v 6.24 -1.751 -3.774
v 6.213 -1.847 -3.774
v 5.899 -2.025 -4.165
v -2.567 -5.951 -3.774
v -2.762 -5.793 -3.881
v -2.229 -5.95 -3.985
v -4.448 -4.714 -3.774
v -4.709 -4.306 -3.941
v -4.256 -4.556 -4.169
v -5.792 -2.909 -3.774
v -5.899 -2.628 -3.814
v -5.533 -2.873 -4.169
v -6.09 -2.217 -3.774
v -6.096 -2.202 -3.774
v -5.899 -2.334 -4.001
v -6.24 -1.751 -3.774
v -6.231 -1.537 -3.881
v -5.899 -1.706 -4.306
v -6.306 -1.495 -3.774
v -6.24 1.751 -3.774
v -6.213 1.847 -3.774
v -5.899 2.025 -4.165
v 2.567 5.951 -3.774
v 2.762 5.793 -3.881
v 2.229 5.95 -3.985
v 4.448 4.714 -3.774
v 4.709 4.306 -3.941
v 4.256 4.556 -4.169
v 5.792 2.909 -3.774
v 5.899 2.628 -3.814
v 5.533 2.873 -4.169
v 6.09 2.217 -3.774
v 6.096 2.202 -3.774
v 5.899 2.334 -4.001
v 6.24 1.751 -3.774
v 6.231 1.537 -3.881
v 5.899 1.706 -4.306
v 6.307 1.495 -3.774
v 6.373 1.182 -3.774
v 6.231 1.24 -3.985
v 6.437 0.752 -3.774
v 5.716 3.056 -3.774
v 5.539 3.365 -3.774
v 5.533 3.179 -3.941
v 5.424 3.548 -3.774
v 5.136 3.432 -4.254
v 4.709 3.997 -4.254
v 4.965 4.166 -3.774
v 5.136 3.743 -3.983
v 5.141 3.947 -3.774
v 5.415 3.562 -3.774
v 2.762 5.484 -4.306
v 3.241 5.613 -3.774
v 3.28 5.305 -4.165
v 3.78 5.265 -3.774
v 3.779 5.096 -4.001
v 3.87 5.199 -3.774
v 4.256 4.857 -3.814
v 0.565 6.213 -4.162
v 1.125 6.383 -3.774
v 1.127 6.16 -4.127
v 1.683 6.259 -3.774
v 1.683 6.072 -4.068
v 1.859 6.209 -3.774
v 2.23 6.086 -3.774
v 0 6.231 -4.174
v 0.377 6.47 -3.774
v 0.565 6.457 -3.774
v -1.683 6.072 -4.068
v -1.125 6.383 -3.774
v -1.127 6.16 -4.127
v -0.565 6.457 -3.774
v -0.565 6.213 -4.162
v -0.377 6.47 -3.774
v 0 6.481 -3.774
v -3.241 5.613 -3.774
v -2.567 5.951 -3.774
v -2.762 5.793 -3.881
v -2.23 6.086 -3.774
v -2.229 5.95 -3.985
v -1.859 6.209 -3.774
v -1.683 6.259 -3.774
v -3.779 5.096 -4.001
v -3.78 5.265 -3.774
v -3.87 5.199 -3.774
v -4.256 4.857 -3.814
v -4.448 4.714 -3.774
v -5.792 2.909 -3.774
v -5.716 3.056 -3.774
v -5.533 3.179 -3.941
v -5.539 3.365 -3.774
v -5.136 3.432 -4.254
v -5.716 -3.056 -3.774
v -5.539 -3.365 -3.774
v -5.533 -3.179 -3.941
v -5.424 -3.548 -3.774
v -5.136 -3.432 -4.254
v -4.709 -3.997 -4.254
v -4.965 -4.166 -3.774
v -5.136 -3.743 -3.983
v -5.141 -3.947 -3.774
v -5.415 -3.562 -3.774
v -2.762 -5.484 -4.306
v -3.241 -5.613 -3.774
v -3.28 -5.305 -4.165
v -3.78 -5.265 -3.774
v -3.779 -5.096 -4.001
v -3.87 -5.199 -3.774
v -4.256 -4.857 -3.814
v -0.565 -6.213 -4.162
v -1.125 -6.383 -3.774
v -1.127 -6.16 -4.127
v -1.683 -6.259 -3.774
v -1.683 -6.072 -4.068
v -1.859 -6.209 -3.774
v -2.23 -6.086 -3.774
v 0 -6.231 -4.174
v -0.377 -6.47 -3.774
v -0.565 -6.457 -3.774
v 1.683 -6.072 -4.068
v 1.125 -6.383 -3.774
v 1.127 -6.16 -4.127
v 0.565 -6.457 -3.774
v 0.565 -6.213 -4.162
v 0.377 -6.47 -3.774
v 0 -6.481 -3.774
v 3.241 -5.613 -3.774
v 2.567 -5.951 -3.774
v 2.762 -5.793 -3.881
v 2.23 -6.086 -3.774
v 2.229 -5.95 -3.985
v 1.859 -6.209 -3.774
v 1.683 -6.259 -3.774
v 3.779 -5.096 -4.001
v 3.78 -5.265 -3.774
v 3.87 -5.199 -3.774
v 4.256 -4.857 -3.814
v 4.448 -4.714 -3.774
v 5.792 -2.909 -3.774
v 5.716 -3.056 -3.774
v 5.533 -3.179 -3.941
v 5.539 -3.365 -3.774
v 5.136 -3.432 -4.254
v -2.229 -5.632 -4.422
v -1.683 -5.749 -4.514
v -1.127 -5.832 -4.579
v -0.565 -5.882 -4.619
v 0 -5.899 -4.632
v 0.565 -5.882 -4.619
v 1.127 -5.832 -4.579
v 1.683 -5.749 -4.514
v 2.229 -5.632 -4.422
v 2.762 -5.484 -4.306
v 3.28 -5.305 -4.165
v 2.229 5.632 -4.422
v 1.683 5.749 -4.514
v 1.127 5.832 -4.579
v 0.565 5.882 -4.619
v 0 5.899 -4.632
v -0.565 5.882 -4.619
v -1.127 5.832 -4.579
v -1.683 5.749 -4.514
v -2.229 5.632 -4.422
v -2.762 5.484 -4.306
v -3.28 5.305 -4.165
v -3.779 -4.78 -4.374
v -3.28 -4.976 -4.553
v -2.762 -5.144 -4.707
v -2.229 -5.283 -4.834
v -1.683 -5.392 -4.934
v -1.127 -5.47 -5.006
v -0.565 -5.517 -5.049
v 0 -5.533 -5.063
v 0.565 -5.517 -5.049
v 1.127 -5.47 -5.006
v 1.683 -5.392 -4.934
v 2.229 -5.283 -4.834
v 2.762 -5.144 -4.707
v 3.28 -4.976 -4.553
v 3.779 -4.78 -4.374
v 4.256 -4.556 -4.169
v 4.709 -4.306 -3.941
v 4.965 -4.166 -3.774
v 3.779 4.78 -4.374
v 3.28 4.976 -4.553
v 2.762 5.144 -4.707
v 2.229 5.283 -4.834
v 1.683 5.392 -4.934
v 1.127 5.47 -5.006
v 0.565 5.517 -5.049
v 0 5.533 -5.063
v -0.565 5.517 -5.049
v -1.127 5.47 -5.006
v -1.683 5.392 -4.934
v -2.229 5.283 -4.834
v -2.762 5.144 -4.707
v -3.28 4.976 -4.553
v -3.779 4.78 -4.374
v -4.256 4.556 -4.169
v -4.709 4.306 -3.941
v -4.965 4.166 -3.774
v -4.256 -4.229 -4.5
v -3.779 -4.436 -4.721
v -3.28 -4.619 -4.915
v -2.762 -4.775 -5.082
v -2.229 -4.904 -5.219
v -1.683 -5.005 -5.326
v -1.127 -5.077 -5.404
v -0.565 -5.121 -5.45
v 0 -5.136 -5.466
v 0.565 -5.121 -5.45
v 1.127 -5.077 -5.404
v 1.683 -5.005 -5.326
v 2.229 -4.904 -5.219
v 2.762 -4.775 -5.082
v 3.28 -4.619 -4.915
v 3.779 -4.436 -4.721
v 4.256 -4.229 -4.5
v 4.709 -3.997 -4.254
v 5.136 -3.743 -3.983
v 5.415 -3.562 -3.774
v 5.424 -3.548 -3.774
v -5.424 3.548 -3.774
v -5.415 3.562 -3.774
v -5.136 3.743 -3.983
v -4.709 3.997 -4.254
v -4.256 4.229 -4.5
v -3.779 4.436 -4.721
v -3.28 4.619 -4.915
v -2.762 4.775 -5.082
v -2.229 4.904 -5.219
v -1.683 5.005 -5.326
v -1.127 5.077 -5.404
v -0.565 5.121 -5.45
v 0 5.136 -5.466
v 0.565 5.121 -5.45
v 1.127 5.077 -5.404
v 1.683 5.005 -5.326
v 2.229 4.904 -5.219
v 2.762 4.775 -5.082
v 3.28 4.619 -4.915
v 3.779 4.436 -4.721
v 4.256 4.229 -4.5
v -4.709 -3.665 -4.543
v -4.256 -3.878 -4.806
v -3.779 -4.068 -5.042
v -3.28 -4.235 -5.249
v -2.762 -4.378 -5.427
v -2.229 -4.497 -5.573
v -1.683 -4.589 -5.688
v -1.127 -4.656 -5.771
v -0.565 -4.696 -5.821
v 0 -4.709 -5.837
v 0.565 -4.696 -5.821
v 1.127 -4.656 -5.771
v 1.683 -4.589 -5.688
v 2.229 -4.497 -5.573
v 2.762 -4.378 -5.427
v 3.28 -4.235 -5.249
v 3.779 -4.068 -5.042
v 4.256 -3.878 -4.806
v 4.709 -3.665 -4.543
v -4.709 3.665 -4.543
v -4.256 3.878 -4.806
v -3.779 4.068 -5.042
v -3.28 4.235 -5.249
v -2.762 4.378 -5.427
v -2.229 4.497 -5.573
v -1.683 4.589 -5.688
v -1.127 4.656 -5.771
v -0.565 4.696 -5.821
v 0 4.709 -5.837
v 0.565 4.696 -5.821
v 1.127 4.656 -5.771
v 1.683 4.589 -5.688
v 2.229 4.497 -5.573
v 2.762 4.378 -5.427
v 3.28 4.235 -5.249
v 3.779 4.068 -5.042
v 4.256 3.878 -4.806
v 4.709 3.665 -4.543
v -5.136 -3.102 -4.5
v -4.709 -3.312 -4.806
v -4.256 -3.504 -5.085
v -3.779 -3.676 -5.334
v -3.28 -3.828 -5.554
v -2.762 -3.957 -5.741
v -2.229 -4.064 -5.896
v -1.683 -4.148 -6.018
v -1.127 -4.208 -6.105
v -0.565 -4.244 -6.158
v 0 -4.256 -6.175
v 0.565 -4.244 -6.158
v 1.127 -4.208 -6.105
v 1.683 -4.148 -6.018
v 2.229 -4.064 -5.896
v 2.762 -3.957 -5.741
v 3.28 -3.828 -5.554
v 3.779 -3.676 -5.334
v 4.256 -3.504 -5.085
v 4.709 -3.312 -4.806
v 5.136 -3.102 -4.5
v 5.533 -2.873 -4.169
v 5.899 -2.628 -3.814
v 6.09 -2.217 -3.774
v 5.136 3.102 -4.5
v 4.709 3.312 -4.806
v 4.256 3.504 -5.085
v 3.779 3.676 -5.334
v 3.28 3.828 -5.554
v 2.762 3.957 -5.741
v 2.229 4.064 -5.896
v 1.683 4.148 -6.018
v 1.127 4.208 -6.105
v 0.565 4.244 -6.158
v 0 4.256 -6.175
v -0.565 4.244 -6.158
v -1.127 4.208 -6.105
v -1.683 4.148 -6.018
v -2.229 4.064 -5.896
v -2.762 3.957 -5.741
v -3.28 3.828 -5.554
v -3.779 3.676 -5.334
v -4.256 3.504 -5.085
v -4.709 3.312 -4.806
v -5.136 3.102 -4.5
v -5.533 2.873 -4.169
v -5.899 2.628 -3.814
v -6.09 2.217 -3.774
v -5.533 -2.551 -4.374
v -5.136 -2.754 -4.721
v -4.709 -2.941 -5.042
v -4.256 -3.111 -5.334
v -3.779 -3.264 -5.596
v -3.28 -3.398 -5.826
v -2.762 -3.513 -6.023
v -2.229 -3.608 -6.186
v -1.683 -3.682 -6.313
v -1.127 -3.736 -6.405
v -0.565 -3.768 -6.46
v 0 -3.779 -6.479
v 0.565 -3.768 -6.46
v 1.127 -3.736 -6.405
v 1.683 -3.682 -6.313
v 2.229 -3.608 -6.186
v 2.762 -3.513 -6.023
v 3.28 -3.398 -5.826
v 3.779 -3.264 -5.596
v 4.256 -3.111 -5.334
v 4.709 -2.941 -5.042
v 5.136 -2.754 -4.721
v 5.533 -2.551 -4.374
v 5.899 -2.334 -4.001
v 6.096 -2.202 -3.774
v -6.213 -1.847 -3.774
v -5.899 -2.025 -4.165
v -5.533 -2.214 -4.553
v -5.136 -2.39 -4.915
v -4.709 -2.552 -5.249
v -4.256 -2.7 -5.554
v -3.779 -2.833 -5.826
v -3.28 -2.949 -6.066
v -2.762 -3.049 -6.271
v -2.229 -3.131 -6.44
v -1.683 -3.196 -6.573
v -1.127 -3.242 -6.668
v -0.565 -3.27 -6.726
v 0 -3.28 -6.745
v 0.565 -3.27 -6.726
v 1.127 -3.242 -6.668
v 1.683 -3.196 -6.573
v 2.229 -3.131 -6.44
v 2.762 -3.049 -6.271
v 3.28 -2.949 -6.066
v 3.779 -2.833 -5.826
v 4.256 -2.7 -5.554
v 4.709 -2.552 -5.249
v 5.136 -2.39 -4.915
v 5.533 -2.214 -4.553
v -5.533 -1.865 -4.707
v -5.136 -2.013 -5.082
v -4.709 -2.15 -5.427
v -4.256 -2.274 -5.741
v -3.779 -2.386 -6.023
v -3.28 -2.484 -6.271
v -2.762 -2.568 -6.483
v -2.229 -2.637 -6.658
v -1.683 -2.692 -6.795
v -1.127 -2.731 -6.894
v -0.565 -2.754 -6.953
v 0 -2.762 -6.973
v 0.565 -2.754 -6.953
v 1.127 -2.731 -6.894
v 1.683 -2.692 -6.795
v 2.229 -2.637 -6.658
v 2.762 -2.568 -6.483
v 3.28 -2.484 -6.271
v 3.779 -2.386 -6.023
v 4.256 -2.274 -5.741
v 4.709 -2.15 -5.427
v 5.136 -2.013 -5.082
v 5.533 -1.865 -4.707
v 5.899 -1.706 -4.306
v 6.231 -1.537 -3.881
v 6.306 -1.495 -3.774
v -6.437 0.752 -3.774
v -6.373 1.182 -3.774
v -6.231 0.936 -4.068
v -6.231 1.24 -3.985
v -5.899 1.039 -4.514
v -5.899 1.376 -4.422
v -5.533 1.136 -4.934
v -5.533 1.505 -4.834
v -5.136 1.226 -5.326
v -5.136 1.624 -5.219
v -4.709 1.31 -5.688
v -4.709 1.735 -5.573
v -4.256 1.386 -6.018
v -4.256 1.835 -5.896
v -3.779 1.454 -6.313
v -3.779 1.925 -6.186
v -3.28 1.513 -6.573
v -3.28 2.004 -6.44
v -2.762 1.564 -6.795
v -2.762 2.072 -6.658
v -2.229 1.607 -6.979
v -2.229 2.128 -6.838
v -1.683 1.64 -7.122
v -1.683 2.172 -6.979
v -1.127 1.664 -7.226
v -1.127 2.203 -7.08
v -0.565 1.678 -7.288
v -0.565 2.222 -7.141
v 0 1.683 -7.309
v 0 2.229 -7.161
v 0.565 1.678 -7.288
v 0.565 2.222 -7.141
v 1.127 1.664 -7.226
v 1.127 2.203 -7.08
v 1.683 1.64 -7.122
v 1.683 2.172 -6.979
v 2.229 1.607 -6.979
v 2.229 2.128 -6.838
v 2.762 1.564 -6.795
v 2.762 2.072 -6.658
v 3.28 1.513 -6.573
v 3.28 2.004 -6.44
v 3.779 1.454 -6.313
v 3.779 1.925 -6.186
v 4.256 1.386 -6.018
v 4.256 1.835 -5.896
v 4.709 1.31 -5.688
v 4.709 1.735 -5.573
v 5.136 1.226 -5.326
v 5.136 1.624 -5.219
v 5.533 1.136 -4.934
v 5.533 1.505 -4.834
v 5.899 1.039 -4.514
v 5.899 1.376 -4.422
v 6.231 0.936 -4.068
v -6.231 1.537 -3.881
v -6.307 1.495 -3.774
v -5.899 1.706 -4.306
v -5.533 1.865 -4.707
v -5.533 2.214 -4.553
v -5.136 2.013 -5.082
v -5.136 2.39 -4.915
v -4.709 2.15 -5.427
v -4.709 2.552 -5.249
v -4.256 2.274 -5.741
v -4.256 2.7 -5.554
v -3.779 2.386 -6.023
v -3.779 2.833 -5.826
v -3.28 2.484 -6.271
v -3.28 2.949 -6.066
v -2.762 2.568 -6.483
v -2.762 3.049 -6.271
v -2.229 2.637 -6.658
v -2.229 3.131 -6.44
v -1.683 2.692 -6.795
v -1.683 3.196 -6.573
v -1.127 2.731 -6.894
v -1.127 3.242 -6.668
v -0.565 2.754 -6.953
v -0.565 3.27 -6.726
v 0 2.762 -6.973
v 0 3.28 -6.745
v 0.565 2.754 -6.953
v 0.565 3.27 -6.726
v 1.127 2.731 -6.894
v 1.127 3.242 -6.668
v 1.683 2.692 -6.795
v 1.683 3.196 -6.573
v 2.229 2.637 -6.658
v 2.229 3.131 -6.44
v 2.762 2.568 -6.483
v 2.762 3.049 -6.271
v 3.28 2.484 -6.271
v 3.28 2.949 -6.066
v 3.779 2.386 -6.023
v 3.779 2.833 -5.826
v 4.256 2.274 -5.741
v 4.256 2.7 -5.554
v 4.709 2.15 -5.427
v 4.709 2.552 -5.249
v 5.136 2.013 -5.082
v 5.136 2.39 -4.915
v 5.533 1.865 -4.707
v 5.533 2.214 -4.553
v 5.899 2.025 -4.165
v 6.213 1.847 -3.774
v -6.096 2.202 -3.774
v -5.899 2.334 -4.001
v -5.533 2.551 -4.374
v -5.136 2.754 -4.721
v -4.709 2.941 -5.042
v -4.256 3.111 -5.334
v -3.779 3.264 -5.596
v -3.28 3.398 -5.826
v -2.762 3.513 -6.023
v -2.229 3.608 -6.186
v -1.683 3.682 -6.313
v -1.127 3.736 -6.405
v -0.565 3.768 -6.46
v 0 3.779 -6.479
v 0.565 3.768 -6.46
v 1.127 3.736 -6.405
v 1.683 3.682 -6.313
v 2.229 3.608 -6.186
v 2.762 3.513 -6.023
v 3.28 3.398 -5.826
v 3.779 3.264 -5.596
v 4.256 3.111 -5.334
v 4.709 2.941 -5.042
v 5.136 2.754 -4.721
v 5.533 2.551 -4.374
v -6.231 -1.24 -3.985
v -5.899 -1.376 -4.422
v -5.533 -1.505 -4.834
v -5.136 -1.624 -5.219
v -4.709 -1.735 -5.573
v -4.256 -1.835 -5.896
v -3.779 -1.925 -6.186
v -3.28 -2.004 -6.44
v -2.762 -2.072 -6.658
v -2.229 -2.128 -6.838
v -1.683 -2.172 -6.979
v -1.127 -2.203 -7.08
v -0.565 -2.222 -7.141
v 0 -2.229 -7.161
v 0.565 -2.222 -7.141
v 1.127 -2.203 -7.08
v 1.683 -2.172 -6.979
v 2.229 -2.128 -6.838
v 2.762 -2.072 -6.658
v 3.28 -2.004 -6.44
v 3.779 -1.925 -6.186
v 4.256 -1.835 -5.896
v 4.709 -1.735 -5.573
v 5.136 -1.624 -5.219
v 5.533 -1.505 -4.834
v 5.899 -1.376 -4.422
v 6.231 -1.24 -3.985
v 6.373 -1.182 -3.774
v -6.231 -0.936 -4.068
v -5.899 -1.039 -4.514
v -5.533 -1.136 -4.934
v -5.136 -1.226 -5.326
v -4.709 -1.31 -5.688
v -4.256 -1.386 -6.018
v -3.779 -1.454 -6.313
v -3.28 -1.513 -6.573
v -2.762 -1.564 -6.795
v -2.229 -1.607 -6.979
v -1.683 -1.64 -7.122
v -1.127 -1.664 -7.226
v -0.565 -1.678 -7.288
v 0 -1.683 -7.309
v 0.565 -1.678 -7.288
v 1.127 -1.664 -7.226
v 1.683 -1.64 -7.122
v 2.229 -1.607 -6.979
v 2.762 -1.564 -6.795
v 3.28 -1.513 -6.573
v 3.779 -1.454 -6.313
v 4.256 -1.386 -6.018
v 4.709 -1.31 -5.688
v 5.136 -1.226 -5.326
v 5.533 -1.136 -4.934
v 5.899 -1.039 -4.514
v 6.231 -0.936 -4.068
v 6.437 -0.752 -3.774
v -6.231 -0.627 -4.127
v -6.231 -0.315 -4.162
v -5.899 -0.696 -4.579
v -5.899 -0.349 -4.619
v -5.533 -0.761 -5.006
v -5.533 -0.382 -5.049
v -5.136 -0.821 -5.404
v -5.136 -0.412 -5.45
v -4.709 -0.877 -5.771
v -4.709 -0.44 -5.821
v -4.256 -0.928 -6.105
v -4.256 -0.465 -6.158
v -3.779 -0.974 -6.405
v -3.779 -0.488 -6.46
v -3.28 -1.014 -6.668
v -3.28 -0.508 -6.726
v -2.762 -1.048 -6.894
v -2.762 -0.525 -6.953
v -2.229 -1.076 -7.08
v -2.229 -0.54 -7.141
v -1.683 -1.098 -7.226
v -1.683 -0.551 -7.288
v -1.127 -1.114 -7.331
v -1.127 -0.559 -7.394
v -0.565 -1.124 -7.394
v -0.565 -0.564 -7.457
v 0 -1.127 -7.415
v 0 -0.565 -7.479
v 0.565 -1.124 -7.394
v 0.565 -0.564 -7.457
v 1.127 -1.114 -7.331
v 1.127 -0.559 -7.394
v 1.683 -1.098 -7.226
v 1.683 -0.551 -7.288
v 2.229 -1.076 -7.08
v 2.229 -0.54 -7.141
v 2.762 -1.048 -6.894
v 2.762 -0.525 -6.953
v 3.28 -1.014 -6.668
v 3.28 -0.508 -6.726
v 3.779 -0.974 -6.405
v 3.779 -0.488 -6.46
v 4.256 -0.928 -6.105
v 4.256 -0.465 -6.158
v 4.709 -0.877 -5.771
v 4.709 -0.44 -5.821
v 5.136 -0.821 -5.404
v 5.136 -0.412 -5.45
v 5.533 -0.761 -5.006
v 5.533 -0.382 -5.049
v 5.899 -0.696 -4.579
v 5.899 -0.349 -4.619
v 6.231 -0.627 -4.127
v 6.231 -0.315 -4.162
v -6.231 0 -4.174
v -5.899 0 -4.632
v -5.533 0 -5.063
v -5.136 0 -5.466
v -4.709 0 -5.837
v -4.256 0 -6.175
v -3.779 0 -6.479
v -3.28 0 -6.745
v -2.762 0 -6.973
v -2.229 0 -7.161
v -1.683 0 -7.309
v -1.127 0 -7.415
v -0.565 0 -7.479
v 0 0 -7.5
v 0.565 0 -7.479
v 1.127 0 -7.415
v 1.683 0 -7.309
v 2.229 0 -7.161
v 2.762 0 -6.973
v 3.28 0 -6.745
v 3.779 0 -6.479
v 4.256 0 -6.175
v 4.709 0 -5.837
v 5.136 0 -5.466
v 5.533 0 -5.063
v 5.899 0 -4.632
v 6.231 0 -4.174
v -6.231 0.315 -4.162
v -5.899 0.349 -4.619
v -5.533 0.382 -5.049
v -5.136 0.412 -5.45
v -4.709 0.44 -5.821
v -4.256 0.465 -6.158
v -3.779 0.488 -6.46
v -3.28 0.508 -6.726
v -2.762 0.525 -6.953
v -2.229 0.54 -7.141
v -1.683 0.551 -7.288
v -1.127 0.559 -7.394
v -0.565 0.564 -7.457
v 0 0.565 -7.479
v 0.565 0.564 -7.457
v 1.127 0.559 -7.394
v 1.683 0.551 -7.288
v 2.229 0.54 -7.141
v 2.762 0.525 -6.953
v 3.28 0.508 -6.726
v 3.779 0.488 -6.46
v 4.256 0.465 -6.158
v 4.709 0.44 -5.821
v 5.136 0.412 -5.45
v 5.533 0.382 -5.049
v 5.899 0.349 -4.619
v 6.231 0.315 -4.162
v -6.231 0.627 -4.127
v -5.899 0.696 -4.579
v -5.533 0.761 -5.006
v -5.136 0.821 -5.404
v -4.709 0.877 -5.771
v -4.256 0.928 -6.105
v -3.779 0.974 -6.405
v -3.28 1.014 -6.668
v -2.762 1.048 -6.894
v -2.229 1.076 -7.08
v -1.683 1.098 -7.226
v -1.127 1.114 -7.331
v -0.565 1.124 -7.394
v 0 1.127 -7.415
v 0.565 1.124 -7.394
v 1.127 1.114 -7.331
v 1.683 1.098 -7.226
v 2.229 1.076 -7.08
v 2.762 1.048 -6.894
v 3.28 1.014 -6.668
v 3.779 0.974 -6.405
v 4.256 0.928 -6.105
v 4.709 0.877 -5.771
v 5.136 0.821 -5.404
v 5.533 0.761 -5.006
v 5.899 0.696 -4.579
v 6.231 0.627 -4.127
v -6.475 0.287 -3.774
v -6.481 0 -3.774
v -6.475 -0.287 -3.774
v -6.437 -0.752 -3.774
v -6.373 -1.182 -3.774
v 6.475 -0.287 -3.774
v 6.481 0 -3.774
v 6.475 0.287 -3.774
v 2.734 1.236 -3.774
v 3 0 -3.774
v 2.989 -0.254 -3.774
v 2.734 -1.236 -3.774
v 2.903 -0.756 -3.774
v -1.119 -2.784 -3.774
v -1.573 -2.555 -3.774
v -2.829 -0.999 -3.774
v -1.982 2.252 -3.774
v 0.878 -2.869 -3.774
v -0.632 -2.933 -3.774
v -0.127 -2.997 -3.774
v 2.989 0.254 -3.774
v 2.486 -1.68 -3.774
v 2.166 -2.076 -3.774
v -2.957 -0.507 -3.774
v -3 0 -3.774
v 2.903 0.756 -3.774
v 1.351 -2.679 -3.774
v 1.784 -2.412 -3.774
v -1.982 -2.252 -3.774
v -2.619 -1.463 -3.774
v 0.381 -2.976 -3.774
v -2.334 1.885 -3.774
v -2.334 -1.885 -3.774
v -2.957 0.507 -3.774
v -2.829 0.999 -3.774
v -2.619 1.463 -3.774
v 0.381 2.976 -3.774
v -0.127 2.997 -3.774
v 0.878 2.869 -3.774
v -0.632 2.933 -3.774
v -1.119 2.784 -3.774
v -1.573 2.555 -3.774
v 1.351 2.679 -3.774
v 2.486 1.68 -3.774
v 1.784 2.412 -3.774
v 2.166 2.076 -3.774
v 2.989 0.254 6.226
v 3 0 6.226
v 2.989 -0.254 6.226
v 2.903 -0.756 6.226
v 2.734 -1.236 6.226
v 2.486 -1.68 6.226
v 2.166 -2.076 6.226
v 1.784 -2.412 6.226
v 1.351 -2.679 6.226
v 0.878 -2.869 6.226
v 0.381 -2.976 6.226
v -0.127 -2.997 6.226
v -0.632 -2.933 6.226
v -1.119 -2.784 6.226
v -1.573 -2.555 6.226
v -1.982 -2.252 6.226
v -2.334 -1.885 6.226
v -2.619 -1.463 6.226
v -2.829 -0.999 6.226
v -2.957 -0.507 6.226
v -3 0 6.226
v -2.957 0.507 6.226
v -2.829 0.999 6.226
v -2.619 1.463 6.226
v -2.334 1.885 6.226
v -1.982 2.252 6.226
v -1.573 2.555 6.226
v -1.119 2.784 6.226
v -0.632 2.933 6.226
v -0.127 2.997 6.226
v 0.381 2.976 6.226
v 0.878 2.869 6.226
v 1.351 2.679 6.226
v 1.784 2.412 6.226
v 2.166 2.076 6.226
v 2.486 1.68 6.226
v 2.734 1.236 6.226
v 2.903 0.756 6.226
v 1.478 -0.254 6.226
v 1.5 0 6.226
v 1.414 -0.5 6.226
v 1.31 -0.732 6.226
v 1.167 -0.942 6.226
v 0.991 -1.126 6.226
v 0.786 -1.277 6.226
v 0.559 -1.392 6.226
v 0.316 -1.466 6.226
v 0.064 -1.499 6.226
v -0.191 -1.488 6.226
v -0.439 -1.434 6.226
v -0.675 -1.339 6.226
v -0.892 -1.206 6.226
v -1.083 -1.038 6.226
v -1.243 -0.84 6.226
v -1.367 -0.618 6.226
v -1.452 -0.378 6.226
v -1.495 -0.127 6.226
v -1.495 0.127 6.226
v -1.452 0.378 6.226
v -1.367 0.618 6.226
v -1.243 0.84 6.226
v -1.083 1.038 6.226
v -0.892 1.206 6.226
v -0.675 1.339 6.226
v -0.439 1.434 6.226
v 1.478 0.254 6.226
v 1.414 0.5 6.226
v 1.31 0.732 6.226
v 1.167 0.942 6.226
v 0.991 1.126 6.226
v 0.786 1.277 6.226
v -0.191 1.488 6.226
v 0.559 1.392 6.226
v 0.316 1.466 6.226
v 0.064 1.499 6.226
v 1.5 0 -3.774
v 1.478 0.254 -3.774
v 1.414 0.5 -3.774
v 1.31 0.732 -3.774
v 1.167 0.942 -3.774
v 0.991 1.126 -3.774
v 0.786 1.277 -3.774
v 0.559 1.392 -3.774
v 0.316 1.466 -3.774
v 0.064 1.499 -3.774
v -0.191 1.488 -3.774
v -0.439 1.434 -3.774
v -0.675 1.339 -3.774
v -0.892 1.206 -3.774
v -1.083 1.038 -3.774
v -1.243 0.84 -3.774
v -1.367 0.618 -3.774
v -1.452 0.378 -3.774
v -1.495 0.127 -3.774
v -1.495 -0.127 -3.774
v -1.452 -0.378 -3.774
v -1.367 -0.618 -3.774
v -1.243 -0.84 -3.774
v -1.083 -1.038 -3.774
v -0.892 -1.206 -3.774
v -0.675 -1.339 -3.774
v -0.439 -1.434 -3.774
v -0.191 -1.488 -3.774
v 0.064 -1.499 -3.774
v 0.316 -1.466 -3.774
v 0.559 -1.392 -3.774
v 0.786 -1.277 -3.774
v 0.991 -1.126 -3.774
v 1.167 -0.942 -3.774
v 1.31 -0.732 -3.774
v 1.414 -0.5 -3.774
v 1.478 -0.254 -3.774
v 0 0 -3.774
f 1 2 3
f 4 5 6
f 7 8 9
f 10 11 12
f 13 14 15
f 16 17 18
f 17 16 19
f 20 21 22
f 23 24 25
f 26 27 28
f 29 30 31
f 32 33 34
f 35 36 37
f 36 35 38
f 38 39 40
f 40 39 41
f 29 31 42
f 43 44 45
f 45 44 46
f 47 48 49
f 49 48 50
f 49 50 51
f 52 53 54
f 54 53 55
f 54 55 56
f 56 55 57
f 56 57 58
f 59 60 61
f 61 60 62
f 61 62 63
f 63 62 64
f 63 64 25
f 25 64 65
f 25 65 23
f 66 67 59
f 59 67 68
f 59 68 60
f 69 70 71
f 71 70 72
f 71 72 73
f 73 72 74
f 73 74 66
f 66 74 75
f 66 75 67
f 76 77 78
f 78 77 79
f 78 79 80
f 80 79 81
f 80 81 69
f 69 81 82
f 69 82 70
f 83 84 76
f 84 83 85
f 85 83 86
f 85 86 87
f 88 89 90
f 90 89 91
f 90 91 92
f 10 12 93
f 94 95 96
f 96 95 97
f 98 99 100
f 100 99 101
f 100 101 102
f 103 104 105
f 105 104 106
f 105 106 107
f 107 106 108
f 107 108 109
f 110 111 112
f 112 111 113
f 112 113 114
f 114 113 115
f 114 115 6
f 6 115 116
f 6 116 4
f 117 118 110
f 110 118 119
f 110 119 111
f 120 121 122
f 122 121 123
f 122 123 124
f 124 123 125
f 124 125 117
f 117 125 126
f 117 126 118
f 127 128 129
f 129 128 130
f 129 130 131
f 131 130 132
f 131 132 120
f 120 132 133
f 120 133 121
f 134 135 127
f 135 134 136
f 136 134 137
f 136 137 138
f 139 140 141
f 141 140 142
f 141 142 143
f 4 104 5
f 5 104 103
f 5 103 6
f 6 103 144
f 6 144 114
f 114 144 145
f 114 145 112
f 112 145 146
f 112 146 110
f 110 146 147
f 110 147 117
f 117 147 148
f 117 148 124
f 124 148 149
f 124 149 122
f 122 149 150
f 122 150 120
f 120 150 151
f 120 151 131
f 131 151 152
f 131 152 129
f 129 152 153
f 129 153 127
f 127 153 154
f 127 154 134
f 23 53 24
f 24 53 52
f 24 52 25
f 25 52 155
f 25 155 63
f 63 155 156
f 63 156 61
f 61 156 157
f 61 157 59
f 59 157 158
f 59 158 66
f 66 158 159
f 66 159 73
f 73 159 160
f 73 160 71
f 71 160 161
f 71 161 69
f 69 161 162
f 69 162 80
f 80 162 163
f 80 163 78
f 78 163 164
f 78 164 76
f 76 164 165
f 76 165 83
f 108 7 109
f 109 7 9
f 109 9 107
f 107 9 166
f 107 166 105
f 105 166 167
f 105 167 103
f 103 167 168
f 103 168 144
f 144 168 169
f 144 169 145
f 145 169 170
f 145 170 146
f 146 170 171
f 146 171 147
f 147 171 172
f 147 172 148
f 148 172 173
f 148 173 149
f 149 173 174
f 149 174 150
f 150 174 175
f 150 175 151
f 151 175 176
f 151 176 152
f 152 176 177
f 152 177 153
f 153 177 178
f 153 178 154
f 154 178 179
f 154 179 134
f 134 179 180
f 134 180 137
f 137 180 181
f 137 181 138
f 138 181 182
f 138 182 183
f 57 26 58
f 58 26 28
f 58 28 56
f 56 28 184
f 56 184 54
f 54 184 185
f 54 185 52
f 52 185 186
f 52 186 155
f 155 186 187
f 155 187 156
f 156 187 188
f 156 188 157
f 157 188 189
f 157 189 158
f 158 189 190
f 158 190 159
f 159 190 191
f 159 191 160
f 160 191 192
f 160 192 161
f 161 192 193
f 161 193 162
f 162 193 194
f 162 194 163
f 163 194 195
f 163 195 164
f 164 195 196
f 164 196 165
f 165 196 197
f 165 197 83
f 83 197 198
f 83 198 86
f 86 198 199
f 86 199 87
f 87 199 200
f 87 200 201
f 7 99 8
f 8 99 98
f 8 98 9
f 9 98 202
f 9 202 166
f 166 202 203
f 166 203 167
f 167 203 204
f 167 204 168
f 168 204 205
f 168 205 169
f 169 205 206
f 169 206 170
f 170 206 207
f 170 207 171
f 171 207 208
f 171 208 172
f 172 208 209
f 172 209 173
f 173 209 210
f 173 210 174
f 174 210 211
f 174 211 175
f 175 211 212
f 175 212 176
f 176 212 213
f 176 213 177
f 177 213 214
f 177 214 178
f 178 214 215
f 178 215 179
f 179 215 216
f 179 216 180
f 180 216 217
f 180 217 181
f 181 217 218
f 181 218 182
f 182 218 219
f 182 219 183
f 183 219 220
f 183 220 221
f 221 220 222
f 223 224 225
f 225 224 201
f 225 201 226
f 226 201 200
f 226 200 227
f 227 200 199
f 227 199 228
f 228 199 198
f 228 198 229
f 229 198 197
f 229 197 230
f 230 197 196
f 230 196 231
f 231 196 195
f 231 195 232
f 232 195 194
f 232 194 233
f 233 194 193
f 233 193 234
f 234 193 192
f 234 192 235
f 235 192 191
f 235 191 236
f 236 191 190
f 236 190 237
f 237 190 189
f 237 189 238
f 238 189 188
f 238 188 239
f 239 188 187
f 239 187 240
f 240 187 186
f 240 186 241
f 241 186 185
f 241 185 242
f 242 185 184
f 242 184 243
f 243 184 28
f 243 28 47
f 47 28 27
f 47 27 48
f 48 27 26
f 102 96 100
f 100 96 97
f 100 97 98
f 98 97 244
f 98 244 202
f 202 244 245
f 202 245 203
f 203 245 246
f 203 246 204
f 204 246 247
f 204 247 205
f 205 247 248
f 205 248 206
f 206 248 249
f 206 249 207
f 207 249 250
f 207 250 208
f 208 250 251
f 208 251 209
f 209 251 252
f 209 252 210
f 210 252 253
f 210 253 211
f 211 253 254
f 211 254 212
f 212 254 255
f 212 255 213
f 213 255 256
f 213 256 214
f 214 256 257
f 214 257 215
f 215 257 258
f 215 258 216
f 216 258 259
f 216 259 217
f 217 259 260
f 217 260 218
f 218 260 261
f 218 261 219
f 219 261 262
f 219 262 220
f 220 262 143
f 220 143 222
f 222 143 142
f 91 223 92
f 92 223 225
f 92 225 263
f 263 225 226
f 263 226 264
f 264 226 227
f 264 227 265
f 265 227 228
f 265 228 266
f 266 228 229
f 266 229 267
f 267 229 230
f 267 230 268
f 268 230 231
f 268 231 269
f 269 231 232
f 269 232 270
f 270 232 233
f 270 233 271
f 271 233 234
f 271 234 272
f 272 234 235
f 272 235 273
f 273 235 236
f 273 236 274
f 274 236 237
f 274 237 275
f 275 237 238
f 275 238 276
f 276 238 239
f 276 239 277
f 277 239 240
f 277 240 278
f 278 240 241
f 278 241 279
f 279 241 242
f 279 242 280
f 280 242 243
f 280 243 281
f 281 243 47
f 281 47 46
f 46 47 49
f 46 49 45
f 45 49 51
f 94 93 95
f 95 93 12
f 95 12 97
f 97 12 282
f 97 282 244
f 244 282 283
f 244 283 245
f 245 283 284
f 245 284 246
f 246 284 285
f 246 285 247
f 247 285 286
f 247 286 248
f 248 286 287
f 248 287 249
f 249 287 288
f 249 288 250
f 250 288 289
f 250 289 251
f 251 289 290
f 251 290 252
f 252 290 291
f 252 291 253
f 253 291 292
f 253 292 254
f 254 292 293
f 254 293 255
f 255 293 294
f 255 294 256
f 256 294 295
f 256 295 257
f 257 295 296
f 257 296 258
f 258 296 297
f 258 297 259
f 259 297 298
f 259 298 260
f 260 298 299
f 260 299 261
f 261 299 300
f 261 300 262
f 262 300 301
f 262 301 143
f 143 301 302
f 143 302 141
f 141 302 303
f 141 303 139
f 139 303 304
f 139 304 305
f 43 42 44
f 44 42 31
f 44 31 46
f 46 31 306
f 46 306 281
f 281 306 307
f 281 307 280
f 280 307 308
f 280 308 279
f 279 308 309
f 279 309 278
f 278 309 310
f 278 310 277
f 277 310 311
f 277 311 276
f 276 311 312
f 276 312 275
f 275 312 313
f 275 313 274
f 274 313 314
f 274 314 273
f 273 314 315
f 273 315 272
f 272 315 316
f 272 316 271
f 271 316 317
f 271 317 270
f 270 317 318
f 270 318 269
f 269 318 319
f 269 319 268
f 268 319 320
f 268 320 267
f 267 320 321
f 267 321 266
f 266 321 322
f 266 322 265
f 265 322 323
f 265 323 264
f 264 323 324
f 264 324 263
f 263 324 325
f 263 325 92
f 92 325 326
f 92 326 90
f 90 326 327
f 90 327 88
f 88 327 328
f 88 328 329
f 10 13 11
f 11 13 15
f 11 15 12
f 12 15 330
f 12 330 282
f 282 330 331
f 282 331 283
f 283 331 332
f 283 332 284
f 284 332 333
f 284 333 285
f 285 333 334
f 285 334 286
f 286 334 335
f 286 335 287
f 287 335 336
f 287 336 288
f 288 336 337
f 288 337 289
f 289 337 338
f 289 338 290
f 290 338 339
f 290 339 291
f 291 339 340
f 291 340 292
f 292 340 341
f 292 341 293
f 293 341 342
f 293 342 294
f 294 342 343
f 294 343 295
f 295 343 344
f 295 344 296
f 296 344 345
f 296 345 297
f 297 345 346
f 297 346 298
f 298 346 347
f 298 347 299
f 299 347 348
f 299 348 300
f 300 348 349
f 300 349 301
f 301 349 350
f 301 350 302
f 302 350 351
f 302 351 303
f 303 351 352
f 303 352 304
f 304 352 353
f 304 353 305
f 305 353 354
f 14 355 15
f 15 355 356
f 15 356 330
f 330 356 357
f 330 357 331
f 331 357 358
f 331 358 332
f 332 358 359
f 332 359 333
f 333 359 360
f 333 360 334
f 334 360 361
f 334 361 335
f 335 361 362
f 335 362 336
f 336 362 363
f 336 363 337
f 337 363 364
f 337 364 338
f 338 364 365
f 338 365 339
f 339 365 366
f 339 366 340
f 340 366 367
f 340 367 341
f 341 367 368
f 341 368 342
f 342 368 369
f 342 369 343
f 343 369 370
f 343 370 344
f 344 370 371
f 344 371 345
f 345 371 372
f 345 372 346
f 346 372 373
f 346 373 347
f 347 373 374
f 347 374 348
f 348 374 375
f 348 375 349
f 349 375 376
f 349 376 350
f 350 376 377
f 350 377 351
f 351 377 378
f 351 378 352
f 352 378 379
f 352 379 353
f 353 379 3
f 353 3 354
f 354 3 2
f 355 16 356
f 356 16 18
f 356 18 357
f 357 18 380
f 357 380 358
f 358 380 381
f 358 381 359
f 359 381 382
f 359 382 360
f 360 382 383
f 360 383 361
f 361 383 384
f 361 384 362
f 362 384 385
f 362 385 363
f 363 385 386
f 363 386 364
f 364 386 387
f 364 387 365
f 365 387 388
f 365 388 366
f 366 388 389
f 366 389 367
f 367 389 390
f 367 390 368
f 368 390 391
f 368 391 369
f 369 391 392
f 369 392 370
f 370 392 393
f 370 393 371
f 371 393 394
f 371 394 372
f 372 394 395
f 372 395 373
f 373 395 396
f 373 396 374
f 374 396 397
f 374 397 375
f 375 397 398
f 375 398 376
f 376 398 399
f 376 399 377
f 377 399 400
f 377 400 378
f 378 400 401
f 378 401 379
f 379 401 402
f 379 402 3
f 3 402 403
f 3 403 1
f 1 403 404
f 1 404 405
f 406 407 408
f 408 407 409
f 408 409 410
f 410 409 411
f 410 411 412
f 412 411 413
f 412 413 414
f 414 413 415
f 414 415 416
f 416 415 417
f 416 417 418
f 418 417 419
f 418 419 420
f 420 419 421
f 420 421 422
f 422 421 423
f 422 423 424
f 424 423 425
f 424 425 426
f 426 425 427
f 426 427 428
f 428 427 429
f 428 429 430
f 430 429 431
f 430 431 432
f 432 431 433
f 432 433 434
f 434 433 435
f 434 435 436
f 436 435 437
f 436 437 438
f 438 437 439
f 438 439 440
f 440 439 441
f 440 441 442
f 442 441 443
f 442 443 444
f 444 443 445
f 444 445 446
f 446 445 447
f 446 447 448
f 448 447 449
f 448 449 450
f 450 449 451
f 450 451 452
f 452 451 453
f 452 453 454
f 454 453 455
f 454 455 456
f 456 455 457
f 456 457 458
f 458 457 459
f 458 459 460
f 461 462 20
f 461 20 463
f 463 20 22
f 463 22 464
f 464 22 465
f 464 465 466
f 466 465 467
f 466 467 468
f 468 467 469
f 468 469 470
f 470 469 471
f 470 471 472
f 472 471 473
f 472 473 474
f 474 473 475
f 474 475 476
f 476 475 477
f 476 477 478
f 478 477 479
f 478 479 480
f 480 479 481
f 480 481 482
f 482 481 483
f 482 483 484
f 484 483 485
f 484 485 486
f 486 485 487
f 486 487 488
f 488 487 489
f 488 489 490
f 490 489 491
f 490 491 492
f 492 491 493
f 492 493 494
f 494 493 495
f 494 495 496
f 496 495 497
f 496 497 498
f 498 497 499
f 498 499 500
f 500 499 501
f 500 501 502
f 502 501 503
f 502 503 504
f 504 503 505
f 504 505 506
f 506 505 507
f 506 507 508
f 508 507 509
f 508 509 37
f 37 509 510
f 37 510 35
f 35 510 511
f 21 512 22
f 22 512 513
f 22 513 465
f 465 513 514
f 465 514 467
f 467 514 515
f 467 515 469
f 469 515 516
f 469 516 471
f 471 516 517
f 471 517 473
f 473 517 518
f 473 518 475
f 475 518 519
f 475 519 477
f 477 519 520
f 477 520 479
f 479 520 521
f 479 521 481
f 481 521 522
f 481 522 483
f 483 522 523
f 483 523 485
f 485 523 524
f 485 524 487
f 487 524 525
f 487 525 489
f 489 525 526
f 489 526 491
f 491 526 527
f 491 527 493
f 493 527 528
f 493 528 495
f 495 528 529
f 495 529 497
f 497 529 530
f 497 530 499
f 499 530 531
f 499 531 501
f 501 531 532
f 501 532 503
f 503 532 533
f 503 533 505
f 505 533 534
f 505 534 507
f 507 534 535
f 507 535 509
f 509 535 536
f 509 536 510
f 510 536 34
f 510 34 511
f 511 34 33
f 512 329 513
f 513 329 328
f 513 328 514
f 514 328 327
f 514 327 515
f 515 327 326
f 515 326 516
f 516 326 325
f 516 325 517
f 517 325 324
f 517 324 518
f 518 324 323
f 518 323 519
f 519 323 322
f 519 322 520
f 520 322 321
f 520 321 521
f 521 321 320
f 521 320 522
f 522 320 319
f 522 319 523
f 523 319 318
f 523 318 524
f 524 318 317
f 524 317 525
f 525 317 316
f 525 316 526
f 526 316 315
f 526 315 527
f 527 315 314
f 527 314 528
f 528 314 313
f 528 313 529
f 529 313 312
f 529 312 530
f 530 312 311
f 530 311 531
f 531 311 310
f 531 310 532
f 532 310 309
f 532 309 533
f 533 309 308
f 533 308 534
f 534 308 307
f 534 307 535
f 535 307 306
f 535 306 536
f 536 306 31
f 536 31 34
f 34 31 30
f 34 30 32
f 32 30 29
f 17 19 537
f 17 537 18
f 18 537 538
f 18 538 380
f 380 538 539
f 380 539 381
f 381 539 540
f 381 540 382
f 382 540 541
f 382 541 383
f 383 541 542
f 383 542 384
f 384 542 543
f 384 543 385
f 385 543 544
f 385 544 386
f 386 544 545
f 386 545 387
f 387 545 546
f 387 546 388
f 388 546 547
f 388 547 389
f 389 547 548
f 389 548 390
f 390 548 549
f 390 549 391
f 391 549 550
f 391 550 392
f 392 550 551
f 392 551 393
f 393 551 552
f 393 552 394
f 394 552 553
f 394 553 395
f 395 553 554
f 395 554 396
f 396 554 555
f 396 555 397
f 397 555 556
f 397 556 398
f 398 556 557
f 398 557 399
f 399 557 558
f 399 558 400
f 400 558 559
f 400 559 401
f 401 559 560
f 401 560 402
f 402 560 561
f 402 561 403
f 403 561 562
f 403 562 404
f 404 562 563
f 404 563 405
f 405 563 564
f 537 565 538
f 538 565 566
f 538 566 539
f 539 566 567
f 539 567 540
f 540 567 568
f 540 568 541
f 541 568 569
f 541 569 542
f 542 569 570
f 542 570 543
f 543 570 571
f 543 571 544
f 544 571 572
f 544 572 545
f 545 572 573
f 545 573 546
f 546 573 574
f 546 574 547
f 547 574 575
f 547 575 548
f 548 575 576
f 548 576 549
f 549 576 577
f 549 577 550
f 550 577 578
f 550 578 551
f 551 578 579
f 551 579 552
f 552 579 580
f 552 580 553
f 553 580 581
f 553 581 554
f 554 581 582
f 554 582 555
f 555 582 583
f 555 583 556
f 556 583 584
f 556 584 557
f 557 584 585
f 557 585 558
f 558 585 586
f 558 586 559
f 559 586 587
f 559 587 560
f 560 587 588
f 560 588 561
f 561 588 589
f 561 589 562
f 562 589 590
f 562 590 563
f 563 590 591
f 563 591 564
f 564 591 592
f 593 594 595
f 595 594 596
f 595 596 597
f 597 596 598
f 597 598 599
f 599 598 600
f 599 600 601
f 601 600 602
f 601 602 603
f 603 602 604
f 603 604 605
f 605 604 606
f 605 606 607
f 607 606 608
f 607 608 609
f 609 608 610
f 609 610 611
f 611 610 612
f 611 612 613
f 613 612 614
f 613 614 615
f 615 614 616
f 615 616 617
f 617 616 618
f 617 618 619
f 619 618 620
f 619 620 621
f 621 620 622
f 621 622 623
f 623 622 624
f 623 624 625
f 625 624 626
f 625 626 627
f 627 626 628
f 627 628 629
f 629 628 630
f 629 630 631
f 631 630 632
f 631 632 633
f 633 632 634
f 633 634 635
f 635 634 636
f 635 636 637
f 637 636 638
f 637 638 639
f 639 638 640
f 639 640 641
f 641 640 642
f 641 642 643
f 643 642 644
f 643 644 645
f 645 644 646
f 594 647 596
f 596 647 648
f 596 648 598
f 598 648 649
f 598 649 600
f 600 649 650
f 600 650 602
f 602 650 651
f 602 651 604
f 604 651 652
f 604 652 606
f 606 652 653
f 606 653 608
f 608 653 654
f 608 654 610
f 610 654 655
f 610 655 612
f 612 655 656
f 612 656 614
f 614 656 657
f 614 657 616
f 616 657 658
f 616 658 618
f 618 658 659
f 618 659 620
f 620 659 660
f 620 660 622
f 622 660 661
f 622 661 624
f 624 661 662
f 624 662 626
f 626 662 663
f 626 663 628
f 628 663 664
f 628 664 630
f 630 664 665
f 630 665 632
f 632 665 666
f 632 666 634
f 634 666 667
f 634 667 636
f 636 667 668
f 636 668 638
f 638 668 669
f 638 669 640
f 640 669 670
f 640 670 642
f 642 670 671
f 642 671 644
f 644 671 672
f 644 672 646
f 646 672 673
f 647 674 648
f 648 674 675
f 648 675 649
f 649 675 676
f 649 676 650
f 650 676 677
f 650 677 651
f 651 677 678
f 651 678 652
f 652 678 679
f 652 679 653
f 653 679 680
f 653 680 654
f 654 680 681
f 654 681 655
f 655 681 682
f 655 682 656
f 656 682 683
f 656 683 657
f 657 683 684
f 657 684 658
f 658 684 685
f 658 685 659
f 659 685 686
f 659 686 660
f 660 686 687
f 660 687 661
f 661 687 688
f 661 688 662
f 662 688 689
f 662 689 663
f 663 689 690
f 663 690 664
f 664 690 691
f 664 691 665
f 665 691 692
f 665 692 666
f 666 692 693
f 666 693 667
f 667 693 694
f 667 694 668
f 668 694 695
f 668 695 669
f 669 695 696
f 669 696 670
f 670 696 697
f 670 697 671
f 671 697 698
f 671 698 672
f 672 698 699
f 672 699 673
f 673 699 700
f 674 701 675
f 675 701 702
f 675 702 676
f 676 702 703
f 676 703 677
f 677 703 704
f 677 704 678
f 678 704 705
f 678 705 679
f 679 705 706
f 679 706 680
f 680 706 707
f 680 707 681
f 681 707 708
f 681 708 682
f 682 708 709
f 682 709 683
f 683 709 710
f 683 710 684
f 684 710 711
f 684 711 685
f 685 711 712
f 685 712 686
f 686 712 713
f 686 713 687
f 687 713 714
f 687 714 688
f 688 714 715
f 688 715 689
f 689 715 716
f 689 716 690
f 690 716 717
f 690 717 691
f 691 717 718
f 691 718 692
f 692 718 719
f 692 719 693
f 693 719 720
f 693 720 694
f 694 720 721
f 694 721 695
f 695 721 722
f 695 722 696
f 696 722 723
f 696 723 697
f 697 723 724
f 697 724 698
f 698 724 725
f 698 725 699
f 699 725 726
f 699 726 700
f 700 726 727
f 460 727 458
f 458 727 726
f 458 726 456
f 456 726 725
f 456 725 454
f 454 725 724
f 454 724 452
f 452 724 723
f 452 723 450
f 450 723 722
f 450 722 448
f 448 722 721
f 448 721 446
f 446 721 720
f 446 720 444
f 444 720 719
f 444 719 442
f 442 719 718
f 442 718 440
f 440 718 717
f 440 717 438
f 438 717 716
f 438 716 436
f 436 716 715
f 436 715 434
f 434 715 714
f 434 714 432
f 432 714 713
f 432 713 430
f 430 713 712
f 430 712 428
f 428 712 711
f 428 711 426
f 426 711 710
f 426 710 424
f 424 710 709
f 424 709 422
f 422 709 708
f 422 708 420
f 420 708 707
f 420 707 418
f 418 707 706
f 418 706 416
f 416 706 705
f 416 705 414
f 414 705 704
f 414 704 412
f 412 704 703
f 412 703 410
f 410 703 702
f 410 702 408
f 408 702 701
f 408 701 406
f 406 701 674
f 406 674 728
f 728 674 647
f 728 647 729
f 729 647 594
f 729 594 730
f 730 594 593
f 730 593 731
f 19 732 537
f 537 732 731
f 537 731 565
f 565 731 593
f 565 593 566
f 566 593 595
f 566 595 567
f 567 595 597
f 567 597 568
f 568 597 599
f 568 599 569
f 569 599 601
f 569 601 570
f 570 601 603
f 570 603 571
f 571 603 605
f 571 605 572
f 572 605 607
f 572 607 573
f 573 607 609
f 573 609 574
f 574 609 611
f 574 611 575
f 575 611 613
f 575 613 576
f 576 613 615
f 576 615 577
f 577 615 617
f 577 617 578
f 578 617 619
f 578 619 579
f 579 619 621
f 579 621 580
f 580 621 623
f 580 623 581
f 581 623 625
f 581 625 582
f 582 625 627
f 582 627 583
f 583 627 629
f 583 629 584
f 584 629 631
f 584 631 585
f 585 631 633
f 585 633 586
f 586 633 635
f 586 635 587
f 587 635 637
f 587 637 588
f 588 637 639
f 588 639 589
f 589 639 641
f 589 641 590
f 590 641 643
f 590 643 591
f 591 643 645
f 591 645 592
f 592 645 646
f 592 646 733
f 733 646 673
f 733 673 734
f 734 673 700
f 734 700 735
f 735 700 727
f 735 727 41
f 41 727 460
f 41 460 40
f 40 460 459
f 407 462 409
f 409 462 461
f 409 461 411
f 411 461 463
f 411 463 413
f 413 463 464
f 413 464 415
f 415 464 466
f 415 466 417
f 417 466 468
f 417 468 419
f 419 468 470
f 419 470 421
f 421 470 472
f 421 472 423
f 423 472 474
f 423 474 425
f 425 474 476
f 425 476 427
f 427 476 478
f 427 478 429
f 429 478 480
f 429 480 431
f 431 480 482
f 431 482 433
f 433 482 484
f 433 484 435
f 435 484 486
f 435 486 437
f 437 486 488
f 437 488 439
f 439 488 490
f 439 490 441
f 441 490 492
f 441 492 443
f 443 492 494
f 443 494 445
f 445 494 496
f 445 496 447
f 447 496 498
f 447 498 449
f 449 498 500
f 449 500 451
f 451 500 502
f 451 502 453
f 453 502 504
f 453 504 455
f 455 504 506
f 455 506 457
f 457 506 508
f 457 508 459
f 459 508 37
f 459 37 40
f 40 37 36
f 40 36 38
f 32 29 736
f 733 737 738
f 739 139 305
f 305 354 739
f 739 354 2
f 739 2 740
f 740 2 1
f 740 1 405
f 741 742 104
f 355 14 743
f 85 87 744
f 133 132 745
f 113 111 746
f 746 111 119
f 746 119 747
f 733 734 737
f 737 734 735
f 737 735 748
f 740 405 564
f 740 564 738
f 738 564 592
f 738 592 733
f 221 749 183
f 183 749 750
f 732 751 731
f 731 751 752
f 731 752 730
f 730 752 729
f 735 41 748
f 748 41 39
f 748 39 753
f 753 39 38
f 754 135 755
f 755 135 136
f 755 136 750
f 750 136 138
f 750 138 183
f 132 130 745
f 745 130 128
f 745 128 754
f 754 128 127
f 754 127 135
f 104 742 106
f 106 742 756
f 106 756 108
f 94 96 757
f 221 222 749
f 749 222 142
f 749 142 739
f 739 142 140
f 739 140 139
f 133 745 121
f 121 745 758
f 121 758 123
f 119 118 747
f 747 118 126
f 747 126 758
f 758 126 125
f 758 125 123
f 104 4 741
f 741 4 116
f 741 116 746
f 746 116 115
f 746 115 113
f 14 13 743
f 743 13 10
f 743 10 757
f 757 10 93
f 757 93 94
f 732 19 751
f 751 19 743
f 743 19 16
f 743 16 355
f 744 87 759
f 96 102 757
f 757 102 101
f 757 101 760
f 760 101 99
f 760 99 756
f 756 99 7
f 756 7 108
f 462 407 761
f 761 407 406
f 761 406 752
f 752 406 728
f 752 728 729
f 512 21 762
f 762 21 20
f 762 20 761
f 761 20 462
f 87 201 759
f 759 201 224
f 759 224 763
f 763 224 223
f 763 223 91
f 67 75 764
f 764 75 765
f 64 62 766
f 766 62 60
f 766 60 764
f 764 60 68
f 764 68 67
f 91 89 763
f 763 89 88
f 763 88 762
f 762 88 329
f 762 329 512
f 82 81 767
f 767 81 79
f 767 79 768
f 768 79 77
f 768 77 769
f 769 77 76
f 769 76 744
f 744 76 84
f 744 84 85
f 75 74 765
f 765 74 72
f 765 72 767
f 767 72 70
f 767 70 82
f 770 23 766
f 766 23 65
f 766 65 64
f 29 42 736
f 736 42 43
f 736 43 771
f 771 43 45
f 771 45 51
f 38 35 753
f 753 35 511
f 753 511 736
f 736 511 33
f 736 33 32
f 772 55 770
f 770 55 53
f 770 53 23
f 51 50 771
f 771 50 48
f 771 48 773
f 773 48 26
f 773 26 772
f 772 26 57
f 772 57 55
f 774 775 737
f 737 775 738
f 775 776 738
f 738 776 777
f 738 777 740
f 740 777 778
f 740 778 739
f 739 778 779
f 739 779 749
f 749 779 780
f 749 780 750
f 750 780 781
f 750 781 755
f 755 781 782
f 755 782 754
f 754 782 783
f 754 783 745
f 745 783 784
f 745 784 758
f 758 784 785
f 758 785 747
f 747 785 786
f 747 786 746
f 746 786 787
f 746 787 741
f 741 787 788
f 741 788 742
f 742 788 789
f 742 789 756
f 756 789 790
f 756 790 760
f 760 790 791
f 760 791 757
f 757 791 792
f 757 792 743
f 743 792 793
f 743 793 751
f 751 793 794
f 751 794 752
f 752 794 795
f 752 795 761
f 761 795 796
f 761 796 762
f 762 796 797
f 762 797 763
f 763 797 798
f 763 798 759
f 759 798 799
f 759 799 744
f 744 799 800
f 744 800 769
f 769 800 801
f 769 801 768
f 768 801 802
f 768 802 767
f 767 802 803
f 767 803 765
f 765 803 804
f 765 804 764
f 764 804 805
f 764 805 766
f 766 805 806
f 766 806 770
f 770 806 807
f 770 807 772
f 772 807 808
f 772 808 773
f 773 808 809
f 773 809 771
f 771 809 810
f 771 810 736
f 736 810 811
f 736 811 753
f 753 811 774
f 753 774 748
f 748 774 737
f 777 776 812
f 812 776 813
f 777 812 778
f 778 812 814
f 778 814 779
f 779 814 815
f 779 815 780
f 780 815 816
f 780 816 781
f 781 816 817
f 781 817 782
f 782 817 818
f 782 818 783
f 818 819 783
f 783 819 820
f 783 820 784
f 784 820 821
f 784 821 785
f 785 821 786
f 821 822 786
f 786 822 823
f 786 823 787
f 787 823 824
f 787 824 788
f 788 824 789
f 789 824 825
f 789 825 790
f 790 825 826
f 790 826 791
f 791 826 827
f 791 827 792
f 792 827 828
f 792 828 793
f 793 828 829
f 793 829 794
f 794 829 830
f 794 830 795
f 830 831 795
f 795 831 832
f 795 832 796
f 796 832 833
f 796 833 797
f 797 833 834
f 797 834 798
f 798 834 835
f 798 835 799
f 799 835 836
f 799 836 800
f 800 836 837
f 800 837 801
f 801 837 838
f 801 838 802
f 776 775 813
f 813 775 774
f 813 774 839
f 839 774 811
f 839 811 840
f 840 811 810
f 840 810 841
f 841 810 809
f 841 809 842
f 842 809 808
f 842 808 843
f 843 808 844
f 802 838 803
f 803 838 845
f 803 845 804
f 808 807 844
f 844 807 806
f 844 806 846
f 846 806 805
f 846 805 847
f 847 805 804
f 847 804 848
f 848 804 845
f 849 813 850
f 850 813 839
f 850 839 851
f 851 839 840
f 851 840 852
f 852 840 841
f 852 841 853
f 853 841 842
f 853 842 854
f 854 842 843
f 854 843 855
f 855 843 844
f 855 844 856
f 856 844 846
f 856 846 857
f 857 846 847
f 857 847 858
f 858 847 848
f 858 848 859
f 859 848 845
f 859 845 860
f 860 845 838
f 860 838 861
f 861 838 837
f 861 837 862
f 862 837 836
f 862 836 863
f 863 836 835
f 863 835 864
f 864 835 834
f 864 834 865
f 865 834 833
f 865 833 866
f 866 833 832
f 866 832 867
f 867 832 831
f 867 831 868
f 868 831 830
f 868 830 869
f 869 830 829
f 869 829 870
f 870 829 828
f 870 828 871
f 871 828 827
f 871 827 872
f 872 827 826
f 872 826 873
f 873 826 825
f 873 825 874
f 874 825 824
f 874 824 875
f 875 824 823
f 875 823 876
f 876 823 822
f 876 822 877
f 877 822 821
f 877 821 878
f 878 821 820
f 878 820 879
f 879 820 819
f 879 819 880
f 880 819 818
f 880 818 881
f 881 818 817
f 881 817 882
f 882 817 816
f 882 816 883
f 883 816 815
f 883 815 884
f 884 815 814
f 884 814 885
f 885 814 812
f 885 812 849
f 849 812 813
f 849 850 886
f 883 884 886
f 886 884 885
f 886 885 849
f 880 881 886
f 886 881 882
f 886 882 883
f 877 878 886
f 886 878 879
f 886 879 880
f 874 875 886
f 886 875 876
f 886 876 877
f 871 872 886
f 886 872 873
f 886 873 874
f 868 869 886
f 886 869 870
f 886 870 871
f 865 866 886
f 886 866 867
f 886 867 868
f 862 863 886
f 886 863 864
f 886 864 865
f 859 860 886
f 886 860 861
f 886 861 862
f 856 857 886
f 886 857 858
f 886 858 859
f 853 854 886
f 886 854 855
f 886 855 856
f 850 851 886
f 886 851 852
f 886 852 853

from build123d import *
from build123d.topology import SkipClean

# Parameters (mm, degrees)
CUT_EXTRUDE1_DEPTH      = 13.990381057
CUT_EXTRUDE1_DEPTH_BACK = 13.990381057
SKETCH2_W               = 18.087717894
SKETCH2_H               = 11.368107684
SKETCH3_R               = 3
BOSS_EXTRUDE1_DEPTH     = 10
SKETCH4_R               = 1.5
CUT_EXTRUDE2_DEPTH      = 10


with BuildPart() as part:
    # Sketch1 → Revolve1 (revolve)
    with BuildSketch(Plane(origin=(0, 0, 0), x_dir=(1, 0, 0), z_dir=(0, 1, 0))):
        with BuildLine():
            Line((-7.5, 0), (7.5, 0))
            ThreePointArc((7.5, 0), (0, 7.5), (-7.5, 0))
        make_face()
    revolve(axis=Axis((-65.403977461, 0, 0), (1, 0, 0)))

    # Sketch2 → Cut-Extrude1 (cut, two sides: drawn at the far end of the back side and taken through both)
    with SkipClean():  # the faces are left unmerged after this step: merging them gives an invalid solid
        with BuildSketch(Plane(origin=(0, 0, 0), x_dir=(1, 0, 0), z_dir=(0, 1, 0)).offset(-CUT_EXTRUDE1_DEPTH_BACK)):
            with Locations((0, -1.91002619)):
                Rectangle(SKETCH2_W, SKETCH2_H)
        extrude(amount=CUT_EXTRUDE1_DEPTH + CUT_EXTRUDE1_DEPTH_BACK, mode=Mode.SUBTRACT)

    # Sketch3 → Boss-Extrude1 (add)
    with SkipClean():  # the faces are left unmerged after this step: merging them gives an invalid solid
        with BuildSketch(Plane.XY.offset(-3.774027652)):
            Circle(SKETCH3_R)
        extrude(amount=BOSS_EXTRUDE1_DEPTH)

    # Sketch4 → Cut-Extrude2 (cut)
    with SkipClean():  # the faces are left unmerged after this step: merging them gives an invalid solid
        with BuildSketch(Plane.XY.offset(6.225972348)):
            Circle(SKETCH4_R)
        extrude(amount=-CUT_EXTRUDE2_DEPTH, mode=Mode.SUBTRACT)


solid = part.part
